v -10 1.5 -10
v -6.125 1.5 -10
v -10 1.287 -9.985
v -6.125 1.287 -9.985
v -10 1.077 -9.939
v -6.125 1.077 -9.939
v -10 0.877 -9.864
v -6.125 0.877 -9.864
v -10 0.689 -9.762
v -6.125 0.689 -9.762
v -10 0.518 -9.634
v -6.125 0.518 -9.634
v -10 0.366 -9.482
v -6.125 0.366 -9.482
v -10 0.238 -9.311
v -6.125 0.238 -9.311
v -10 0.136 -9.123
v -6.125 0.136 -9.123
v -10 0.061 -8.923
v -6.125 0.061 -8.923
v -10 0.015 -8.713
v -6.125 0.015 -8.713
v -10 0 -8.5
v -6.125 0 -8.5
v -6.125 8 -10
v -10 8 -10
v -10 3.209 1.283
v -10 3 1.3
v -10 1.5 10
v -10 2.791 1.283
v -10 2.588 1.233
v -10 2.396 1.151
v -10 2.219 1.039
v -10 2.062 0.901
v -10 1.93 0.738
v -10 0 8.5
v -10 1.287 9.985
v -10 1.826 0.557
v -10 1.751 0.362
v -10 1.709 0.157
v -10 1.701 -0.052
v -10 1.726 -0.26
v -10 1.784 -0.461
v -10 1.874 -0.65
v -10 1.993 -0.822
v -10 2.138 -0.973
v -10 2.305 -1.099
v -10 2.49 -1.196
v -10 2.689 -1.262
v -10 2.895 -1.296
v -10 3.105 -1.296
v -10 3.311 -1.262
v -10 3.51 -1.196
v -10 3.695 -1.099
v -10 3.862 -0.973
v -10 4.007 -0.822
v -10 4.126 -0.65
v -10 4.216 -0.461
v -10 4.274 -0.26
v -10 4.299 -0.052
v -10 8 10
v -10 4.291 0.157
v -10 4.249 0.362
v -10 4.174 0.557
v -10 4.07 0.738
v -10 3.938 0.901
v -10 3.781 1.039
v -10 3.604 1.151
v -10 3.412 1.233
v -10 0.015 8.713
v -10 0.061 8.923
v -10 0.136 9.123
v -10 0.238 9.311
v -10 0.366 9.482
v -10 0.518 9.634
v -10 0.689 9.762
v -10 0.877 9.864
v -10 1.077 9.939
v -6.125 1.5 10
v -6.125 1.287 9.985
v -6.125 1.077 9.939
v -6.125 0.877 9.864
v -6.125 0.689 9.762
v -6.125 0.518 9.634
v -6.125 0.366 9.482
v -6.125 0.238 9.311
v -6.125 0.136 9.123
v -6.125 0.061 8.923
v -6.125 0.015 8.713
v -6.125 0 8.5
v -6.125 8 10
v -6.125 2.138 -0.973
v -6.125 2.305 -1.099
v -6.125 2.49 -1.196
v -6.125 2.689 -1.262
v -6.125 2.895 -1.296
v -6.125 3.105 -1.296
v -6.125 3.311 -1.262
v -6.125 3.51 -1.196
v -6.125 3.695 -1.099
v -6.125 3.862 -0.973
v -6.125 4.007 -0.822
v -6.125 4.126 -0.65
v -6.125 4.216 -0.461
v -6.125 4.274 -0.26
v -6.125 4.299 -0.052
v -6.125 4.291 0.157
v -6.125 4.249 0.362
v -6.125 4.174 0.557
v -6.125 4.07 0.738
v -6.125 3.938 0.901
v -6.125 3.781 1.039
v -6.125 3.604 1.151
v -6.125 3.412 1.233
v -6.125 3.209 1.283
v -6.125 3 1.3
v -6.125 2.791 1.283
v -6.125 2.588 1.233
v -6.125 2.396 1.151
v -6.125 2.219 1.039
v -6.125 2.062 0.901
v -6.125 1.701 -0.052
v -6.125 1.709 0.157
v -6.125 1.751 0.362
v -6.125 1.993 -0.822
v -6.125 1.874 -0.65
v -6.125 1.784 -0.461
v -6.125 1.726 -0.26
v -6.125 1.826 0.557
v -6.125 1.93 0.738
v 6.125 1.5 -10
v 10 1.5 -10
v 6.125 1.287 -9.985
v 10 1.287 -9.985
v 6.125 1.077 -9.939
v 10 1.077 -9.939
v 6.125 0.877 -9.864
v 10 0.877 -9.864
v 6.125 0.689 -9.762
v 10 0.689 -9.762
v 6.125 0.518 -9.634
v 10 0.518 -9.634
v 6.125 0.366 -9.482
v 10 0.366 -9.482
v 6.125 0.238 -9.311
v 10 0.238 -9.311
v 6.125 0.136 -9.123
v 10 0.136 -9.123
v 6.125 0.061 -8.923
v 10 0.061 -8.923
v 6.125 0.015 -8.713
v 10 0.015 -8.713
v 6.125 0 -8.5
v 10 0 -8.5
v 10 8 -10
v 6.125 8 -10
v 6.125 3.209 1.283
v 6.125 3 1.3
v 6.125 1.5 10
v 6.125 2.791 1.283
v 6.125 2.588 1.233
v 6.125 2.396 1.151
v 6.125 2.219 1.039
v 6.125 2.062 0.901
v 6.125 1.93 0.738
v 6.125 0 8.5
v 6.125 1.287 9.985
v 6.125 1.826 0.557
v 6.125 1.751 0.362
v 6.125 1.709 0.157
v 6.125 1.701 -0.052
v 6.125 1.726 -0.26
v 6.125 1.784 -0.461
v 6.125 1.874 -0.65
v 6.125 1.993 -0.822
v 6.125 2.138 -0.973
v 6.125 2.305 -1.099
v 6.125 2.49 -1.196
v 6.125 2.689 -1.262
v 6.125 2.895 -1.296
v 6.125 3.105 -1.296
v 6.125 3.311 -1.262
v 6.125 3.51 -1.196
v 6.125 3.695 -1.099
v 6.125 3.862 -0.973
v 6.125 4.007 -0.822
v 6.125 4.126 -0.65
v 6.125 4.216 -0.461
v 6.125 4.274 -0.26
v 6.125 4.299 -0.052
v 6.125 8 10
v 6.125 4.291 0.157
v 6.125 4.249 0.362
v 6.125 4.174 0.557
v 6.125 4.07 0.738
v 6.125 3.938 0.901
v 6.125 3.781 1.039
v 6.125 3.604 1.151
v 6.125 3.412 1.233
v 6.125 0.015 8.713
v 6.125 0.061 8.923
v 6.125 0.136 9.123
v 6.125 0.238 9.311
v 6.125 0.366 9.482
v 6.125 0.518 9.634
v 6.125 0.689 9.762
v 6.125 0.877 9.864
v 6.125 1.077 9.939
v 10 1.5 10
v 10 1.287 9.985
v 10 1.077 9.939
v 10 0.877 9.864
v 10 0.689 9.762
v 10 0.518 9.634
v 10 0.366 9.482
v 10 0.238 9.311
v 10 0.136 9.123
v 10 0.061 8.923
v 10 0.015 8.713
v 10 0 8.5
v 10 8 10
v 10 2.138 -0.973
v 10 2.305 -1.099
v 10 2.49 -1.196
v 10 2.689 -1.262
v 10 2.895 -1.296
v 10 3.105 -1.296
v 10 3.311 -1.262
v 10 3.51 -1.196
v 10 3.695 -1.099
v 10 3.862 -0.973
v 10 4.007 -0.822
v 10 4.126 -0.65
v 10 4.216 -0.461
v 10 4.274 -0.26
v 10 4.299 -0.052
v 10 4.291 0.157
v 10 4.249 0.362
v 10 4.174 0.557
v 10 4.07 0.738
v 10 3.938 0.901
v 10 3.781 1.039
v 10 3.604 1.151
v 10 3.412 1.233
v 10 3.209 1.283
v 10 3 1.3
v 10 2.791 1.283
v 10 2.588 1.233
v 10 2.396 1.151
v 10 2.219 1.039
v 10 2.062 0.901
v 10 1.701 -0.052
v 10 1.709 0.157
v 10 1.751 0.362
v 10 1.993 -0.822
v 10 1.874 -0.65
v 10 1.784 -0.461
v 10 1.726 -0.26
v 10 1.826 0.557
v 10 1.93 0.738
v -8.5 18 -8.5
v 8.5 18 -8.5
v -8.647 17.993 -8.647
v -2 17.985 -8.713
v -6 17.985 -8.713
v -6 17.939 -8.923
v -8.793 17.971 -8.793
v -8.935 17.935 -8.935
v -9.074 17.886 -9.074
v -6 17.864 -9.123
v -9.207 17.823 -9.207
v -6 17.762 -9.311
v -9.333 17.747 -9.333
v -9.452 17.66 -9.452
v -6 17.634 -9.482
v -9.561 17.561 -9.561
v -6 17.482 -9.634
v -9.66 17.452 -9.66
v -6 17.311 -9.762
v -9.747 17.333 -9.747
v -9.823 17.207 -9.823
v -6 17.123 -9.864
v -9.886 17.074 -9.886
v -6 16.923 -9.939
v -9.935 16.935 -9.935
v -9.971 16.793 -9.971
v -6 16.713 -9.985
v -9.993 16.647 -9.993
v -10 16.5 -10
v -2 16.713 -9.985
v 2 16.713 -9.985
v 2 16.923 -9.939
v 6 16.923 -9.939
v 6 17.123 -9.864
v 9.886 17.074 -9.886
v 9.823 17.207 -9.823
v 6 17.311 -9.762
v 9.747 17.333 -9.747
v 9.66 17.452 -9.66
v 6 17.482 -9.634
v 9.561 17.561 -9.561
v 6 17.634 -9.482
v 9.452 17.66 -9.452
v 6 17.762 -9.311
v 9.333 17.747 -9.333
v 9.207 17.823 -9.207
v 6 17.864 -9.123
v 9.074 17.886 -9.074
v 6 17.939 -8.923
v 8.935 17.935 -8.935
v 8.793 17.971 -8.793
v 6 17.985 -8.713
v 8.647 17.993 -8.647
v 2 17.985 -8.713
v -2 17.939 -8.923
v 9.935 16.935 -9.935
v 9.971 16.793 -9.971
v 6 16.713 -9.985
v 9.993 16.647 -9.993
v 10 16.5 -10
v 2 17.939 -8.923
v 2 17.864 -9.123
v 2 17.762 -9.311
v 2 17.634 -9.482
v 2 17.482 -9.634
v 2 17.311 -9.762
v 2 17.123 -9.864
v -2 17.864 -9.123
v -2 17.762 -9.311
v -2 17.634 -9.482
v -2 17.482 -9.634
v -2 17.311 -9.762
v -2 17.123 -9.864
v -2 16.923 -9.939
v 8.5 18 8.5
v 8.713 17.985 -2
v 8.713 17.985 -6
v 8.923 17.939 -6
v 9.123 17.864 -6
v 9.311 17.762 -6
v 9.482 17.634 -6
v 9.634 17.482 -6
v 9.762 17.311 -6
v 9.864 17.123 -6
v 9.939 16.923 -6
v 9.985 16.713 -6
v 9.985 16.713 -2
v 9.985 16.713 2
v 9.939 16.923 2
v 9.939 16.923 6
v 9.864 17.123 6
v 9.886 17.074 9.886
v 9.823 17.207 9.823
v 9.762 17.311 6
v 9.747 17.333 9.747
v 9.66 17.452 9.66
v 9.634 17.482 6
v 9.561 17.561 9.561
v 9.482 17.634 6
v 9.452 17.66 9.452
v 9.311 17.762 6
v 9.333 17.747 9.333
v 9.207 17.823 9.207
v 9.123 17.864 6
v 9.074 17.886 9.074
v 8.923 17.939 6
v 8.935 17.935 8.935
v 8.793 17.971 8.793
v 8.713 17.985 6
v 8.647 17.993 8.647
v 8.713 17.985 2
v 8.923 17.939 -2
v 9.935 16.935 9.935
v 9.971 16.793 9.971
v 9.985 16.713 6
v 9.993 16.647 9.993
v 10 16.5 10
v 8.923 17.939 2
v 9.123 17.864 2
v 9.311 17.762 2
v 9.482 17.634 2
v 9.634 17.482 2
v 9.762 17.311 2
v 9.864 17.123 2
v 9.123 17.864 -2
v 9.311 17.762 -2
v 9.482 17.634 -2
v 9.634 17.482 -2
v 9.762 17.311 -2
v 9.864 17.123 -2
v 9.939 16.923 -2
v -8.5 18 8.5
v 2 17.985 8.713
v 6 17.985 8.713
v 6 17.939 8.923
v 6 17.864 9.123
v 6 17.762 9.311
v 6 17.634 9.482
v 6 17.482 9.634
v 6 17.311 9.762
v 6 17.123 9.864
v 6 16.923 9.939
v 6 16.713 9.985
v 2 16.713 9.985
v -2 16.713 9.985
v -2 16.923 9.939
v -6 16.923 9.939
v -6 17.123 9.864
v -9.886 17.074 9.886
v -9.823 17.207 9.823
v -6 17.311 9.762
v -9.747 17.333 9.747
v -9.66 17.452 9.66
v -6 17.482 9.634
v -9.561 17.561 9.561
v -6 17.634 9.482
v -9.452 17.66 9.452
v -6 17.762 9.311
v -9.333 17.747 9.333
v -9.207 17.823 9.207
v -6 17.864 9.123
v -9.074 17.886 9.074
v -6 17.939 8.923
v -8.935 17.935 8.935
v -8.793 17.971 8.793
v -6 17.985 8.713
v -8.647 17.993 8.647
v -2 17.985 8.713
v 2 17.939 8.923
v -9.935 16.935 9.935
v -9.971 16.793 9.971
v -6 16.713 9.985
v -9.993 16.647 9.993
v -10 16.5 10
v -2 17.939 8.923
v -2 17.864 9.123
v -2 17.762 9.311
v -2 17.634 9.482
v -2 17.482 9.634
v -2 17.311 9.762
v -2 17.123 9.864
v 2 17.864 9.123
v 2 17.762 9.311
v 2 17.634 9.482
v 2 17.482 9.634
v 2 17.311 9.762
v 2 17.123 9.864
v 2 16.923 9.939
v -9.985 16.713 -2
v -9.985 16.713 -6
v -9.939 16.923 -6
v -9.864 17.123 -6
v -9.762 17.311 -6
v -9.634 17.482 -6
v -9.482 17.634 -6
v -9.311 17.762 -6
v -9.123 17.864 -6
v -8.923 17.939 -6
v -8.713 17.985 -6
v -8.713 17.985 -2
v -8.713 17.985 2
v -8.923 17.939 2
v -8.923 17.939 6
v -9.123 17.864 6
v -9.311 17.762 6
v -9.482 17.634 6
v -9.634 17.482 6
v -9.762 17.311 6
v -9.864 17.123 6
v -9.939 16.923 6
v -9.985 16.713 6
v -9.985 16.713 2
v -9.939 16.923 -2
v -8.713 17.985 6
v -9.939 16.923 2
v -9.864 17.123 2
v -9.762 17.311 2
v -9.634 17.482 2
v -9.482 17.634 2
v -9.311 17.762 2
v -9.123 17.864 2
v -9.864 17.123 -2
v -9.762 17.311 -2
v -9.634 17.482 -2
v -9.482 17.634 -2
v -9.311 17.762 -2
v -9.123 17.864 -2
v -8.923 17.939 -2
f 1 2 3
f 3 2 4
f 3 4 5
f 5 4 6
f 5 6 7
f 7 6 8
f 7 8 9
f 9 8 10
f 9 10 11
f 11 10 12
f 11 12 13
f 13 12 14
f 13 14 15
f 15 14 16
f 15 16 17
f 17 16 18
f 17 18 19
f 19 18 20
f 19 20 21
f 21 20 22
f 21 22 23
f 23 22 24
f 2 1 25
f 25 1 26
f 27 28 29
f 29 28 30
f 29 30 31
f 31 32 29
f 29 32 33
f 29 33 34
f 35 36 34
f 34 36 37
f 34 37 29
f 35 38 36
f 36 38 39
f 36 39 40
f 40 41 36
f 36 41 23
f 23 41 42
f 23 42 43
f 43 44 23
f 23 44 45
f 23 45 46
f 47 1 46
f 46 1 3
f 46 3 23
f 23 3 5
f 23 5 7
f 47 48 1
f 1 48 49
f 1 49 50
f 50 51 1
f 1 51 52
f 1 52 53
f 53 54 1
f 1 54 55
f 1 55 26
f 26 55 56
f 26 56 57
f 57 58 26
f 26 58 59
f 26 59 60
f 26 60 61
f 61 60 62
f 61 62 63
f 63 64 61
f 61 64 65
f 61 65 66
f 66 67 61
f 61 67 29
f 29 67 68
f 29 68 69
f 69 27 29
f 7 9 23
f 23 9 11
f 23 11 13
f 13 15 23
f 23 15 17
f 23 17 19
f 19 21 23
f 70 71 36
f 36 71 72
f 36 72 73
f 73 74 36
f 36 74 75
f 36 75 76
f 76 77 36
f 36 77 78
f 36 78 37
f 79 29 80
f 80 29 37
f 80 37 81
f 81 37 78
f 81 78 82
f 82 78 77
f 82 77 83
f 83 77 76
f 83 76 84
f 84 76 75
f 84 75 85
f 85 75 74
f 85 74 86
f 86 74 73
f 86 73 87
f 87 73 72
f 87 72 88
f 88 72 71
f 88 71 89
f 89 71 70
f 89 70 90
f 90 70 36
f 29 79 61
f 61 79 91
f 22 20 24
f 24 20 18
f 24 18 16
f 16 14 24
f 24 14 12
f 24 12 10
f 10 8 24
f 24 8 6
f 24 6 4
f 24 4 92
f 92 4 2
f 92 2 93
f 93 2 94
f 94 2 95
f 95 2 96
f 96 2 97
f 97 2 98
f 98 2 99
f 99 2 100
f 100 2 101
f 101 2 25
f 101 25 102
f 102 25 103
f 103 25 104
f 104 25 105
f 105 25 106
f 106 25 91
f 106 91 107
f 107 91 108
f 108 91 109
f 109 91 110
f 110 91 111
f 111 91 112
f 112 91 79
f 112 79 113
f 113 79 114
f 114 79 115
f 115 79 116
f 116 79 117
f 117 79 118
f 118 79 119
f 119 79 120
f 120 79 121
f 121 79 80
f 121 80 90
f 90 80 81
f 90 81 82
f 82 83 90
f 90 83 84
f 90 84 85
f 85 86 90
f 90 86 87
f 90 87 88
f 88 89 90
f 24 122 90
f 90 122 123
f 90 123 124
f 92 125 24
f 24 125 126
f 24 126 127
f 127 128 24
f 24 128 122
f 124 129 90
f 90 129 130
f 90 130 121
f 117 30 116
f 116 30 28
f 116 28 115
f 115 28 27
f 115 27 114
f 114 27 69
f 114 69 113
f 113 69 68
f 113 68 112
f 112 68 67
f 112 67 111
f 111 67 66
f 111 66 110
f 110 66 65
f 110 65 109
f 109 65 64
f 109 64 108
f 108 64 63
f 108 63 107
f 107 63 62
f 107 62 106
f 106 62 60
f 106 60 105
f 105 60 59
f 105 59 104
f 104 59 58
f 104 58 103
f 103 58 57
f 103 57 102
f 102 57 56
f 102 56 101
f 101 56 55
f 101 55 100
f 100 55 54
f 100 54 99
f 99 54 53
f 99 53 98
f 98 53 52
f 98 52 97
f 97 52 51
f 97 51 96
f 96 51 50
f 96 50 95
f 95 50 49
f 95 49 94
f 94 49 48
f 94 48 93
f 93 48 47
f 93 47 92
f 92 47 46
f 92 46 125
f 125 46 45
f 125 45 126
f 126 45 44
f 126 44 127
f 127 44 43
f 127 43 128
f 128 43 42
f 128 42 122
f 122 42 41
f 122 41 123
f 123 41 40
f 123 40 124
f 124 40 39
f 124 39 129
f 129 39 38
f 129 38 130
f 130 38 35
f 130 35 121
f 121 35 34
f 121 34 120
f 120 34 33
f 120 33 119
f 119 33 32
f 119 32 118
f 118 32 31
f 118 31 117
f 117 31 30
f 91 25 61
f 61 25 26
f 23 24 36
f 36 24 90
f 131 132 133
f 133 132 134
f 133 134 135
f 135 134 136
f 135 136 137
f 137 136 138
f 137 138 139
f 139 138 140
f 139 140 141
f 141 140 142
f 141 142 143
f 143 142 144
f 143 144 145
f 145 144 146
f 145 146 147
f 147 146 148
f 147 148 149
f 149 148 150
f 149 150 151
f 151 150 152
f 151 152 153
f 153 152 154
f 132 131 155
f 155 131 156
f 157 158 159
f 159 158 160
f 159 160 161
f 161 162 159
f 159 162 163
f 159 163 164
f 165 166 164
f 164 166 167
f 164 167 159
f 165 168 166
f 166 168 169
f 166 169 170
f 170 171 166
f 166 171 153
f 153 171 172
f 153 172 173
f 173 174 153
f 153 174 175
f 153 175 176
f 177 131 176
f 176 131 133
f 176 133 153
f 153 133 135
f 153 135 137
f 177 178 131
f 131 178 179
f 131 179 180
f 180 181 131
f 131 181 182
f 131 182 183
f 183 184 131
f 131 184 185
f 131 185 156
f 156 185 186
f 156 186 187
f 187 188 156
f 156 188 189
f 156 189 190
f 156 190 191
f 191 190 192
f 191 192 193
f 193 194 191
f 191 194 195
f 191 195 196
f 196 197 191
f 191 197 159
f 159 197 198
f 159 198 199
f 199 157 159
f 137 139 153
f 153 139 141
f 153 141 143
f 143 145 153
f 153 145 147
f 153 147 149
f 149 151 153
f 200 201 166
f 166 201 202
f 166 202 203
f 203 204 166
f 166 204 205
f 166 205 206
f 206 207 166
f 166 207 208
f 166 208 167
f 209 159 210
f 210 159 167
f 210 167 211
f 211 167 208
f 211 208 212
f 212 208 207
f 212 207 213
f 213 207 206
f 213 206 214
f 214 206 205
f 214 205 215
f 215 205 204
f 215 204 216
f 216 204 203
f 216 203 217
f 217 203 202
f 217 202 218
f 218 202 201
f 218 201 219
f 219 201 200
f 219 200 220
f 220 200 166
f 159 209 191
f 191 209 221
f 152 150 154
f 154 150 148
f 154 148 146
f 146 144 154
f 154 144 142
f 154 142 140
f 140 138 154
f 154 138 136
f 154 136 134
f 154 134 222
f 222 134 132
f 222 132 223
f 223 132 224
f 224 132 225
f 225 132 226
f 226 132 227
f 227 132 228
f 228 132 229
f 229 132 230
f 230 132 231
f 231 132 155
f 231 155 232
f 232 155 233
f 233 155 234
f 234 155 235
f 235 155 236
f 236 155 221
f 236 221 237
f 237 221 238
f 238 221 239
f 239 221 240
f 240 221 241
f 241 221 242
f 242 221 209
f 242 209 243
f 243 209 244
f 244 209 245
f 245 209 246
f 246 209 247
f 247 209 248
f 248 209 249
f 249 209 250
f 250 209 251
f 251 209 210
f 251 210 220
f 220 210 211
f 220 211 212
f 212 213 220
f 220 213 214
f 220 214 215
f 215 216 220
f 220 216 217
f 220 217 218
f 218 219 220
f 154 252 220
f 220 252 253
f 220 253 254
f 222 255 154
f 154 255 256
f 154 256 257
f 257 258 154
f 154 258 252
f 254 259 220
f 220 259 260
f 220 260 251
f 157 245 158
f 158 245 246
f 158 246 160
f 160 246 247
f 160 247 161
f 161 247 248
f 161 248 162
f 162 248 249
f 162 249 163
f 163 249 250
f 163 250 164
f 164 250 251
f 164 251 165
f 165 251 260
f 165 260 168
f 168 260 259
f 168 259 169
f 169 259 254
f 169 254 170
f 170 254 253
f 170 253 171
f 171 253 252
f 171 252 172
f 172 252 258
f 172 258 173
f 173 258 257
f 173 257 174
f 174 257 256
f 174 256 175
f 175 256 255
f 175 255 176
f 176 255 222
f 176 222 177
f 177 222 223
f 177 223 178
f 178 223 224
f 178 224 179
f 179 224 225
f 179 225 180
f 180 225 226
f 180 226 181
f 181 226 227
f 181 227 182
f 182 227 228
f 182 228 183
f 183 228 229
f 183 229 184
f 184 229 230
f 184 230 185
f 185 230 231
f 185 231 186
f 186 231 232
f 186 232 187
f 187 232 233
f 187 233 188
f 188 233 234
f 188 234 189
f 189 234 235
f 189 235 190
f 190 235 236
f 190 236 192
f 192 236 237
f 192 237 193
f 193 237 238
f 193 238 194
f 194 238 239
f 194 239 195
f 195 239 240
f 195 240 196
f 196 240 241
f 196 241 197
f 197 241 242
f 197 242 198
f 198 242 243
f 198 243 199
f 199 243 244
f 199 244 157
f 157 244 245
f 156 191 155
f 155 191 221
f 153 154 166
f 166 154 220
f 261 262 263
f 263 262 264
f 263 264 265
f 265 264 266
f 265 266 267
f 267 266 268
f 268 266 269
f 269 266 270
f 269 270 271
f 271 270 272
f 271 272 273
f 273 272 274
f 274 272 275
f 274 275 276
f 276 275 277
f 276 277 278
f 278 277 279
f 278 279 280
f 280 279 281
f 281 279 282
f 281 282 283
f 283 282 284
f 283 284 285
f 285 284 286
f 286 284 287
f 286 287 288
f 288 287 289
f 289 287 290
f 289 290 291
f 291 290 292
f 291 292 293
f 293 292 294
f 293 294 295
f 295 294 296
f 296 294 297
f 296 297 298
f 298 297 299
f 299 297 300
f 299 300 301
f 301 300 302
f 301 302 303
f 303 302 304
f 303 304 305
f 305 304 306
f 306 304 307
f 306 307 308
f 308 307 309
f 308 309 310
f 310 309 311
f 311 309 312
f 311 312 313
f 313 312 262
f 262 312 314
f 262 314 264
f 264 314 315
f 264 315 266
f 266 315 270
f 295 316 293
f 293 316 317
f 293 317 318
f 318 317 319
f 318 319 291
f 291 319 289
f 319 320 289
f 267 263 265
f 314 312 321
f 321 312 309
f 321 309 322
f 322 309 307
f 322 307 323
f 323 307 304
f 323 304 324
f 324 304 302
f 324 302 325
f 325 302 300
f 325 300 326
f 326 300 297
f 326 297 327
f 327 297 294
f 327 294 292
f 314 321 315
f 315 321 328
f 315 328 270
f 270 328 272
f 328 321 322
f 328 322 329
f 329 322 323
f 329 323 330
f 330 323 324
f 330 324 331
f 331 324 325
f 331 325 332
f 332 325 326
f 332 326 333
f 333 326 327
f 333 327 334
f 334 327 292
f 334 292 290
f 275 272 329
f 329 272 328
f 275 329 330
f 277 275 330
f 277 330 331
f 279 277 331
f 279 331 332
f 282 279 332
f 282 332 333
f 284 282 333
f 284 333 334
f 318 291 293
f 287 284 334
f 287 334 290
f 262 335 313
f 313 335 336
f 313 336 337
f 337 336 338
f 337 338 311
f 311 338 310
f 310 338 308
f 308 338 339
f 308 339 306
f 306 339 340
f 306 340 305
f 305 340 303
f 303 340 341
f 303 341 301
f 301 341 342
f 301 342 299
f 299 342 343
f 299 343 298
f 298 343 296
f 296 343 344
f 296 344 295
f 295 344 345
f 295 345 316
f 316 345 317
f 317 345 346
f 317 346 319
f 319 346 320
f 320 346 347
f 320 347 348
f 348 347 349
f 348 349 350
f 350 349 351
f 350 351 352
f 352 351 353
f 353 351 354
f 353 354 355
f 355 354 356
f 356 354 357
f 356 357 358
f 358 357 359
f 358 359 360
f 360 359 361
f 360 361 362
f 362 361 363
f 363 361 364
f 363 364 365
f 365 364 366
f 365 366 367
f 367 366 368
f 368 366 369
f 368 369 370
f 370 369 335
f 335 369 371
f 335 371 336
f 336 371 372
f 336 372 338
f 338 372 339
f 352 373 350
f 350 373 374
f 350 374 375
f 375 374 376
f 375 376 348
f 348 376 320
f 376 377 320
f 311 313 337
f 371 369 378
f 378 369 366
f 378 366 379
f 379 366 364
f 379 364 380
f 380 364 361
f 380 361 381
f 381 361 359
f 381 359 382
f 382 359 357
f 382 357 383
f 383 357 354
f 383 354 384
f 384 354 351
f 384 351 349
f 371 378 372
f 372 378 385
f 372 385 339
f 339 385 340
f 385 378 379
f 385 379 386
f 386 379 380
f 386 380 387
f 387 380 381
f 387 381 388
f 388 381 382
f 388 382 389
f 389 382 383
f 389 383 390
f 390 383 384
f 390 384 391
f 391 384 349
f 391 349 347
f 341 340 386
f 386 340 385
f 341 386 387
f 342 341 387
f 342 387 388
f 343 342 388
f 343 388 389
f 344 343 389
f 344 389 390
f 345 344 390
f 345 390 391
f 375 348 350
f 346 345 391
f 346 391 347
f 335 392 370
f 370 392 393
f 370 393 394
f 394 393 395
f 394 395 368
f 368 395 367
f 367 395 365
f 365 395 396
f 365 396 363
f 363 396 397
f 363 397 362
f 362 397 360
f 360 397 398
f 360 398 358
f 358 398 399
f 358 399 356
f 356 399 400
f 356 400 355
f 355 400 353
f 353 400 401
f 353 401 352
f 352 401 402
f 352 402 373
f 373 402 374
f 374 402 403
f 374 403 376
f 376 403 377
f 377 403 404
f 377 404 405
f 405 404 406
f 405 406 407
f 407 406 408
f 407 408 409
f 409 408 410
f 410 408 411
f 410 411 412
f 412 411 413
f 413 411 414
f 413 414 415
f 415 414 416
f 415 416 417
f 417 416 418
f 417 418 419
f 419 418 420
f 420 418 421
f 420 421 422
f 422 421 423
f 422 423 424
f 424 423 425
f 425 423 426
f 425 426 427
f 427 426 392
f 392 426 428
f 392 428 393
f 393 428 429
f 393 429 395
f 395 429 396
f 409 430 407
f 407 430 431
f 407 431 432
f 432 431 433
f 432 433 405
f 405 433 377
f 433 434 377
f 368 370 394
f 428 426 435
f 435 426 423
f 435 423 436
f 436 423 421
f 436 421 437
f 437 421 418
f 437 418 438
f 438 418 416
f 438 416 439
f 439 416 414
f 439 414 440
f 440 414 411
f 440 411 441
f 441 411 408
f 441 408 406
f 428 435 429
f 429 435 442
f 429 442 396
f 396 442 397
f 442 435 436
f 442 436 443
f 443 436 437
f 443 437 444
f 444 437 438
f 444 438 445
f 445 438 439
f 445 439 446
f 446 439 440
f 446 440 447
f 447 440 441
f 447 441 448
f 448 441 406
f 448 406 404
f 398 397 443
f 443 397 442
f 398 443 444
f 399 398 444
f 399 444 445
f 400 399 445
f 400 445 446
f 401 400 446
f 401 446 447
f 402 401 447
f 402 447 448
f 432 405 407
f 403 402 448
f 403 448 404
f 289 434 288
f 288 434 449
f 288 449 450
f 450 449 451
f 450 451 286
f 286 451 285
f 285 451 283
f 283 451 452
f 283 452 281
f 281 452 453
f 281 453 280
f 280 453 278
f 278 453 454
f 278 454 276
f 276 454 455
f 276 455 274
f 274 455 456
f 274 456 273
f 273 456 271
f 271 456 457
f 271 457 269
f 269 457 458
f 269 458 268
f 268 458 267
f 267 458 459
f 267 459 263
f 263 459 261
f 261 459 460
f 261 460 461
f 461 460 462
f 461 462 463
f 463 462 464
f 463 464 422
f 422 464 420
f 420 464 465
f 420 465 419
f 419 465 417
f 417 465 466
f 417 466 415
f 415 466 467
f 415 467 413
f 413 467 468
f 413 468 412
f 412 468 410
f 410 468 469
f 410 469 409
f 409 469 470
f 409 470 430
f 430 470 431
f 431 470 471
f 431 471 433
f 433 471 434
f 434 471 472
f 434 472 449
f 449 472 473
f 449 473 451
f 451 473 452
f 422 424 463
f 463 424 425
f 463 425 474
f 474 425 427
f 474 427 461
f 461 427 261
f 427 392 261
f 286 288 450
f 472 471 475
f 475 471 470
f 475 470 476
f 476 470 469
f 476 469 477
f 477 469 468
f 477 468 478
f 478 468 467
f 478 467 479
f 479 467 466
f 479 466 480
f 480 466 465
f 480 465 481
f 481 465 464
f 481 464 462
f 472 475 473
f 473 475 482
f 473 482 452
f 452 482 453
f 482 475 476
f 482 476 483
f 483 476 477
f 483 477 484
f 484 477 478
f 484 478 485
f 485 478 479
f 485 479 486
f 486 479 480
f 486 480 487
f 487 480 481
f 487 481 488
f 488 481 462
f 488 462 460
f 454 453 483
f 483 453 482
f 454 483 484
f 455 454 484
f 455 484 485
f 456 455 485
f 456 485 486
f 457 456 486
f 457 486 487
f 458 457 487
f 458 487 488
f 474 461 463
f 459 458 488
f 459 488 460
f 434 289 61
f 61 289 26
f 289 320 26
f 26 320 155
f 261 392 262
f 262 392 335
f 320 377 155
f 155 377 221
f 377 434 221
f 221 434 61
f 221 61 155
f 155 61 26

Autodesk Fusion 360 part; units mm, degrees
sketch "Sketch1" plane through (0, 0, 0) normal (0, 1, 0) x (1, 0, 0)
  line L0 (-10, 10) -> (10, 10)
  line L1 (10, 10) -> (10, -10)
  line L2 (10, -10) -> (-10, -10)
  line L3 (-10, -10) -> (-10, 10)
  line L4 (-10, 10) -> (10, -10) construction
  line L5 (10, 10) -> (-10, -10) construction
  line L6 (-6.125, 10) -> (6.125, 10)
  line L7 (6.125, 10) -> (6.125, -10)
  line L8 (6.125, -10) -> (-6.125, -10)
  line L9 (-6.125, -10) -> (-6.125, 10)
  line L10 (-6.125, 10) -> (6.125, -10) construction
  line L11 (6.125, 10) -> (-6.125, -10) construction
  dimension "d1" = 20
  dimension "d2" = 20
  dimension "d3" = 12.25
extrude "Extrude1" add sketch "Sketch1" along normal blind 8 contours L0 L2 L3 L9 | L0 L1 L2 L7 makes body 1 at (-10, 5.3333, 3.3333) makes body 2 at (10, 5.3333, -3.3333)
extrude "Extrude2" add sketch "Sketch1" along normal blind 10 from surface at 8 separate body makes body 3
sketch "Sketch2" plane through (10, 0, 0) normal (1, 0, 0) x (0, 0, -1)
  line L0 (-10, 0) -> (10, 0)
  line L1 (10, 0) -> (10, 8)
  line L2 (10, 8) -> (-10, 8)
  line L3 (-10, 8) -> (-10, 0)
  circle A0 centre (0, 3) radius 1.3
  dimension "d9" = 2.6
  dimension "d11" = 3
extrude "Extrude3" cut sketch "Sketch2" along normal through all and the other way through all contours A0 bodies 1 2
fillet "Fillet1" radius 1.5 4 edges at (-8.0625, 0, 10) (-8.0625, 0, -10) (8.0625, 0, 10) (8.0625, 0, -10) on bodies 1 2
fillet "Fillet2" radius 1.5 4 edges at (0, 18, 10) (0, 18, -10) (-10, 18, 0) (10, 18, 0) on bodies 3
